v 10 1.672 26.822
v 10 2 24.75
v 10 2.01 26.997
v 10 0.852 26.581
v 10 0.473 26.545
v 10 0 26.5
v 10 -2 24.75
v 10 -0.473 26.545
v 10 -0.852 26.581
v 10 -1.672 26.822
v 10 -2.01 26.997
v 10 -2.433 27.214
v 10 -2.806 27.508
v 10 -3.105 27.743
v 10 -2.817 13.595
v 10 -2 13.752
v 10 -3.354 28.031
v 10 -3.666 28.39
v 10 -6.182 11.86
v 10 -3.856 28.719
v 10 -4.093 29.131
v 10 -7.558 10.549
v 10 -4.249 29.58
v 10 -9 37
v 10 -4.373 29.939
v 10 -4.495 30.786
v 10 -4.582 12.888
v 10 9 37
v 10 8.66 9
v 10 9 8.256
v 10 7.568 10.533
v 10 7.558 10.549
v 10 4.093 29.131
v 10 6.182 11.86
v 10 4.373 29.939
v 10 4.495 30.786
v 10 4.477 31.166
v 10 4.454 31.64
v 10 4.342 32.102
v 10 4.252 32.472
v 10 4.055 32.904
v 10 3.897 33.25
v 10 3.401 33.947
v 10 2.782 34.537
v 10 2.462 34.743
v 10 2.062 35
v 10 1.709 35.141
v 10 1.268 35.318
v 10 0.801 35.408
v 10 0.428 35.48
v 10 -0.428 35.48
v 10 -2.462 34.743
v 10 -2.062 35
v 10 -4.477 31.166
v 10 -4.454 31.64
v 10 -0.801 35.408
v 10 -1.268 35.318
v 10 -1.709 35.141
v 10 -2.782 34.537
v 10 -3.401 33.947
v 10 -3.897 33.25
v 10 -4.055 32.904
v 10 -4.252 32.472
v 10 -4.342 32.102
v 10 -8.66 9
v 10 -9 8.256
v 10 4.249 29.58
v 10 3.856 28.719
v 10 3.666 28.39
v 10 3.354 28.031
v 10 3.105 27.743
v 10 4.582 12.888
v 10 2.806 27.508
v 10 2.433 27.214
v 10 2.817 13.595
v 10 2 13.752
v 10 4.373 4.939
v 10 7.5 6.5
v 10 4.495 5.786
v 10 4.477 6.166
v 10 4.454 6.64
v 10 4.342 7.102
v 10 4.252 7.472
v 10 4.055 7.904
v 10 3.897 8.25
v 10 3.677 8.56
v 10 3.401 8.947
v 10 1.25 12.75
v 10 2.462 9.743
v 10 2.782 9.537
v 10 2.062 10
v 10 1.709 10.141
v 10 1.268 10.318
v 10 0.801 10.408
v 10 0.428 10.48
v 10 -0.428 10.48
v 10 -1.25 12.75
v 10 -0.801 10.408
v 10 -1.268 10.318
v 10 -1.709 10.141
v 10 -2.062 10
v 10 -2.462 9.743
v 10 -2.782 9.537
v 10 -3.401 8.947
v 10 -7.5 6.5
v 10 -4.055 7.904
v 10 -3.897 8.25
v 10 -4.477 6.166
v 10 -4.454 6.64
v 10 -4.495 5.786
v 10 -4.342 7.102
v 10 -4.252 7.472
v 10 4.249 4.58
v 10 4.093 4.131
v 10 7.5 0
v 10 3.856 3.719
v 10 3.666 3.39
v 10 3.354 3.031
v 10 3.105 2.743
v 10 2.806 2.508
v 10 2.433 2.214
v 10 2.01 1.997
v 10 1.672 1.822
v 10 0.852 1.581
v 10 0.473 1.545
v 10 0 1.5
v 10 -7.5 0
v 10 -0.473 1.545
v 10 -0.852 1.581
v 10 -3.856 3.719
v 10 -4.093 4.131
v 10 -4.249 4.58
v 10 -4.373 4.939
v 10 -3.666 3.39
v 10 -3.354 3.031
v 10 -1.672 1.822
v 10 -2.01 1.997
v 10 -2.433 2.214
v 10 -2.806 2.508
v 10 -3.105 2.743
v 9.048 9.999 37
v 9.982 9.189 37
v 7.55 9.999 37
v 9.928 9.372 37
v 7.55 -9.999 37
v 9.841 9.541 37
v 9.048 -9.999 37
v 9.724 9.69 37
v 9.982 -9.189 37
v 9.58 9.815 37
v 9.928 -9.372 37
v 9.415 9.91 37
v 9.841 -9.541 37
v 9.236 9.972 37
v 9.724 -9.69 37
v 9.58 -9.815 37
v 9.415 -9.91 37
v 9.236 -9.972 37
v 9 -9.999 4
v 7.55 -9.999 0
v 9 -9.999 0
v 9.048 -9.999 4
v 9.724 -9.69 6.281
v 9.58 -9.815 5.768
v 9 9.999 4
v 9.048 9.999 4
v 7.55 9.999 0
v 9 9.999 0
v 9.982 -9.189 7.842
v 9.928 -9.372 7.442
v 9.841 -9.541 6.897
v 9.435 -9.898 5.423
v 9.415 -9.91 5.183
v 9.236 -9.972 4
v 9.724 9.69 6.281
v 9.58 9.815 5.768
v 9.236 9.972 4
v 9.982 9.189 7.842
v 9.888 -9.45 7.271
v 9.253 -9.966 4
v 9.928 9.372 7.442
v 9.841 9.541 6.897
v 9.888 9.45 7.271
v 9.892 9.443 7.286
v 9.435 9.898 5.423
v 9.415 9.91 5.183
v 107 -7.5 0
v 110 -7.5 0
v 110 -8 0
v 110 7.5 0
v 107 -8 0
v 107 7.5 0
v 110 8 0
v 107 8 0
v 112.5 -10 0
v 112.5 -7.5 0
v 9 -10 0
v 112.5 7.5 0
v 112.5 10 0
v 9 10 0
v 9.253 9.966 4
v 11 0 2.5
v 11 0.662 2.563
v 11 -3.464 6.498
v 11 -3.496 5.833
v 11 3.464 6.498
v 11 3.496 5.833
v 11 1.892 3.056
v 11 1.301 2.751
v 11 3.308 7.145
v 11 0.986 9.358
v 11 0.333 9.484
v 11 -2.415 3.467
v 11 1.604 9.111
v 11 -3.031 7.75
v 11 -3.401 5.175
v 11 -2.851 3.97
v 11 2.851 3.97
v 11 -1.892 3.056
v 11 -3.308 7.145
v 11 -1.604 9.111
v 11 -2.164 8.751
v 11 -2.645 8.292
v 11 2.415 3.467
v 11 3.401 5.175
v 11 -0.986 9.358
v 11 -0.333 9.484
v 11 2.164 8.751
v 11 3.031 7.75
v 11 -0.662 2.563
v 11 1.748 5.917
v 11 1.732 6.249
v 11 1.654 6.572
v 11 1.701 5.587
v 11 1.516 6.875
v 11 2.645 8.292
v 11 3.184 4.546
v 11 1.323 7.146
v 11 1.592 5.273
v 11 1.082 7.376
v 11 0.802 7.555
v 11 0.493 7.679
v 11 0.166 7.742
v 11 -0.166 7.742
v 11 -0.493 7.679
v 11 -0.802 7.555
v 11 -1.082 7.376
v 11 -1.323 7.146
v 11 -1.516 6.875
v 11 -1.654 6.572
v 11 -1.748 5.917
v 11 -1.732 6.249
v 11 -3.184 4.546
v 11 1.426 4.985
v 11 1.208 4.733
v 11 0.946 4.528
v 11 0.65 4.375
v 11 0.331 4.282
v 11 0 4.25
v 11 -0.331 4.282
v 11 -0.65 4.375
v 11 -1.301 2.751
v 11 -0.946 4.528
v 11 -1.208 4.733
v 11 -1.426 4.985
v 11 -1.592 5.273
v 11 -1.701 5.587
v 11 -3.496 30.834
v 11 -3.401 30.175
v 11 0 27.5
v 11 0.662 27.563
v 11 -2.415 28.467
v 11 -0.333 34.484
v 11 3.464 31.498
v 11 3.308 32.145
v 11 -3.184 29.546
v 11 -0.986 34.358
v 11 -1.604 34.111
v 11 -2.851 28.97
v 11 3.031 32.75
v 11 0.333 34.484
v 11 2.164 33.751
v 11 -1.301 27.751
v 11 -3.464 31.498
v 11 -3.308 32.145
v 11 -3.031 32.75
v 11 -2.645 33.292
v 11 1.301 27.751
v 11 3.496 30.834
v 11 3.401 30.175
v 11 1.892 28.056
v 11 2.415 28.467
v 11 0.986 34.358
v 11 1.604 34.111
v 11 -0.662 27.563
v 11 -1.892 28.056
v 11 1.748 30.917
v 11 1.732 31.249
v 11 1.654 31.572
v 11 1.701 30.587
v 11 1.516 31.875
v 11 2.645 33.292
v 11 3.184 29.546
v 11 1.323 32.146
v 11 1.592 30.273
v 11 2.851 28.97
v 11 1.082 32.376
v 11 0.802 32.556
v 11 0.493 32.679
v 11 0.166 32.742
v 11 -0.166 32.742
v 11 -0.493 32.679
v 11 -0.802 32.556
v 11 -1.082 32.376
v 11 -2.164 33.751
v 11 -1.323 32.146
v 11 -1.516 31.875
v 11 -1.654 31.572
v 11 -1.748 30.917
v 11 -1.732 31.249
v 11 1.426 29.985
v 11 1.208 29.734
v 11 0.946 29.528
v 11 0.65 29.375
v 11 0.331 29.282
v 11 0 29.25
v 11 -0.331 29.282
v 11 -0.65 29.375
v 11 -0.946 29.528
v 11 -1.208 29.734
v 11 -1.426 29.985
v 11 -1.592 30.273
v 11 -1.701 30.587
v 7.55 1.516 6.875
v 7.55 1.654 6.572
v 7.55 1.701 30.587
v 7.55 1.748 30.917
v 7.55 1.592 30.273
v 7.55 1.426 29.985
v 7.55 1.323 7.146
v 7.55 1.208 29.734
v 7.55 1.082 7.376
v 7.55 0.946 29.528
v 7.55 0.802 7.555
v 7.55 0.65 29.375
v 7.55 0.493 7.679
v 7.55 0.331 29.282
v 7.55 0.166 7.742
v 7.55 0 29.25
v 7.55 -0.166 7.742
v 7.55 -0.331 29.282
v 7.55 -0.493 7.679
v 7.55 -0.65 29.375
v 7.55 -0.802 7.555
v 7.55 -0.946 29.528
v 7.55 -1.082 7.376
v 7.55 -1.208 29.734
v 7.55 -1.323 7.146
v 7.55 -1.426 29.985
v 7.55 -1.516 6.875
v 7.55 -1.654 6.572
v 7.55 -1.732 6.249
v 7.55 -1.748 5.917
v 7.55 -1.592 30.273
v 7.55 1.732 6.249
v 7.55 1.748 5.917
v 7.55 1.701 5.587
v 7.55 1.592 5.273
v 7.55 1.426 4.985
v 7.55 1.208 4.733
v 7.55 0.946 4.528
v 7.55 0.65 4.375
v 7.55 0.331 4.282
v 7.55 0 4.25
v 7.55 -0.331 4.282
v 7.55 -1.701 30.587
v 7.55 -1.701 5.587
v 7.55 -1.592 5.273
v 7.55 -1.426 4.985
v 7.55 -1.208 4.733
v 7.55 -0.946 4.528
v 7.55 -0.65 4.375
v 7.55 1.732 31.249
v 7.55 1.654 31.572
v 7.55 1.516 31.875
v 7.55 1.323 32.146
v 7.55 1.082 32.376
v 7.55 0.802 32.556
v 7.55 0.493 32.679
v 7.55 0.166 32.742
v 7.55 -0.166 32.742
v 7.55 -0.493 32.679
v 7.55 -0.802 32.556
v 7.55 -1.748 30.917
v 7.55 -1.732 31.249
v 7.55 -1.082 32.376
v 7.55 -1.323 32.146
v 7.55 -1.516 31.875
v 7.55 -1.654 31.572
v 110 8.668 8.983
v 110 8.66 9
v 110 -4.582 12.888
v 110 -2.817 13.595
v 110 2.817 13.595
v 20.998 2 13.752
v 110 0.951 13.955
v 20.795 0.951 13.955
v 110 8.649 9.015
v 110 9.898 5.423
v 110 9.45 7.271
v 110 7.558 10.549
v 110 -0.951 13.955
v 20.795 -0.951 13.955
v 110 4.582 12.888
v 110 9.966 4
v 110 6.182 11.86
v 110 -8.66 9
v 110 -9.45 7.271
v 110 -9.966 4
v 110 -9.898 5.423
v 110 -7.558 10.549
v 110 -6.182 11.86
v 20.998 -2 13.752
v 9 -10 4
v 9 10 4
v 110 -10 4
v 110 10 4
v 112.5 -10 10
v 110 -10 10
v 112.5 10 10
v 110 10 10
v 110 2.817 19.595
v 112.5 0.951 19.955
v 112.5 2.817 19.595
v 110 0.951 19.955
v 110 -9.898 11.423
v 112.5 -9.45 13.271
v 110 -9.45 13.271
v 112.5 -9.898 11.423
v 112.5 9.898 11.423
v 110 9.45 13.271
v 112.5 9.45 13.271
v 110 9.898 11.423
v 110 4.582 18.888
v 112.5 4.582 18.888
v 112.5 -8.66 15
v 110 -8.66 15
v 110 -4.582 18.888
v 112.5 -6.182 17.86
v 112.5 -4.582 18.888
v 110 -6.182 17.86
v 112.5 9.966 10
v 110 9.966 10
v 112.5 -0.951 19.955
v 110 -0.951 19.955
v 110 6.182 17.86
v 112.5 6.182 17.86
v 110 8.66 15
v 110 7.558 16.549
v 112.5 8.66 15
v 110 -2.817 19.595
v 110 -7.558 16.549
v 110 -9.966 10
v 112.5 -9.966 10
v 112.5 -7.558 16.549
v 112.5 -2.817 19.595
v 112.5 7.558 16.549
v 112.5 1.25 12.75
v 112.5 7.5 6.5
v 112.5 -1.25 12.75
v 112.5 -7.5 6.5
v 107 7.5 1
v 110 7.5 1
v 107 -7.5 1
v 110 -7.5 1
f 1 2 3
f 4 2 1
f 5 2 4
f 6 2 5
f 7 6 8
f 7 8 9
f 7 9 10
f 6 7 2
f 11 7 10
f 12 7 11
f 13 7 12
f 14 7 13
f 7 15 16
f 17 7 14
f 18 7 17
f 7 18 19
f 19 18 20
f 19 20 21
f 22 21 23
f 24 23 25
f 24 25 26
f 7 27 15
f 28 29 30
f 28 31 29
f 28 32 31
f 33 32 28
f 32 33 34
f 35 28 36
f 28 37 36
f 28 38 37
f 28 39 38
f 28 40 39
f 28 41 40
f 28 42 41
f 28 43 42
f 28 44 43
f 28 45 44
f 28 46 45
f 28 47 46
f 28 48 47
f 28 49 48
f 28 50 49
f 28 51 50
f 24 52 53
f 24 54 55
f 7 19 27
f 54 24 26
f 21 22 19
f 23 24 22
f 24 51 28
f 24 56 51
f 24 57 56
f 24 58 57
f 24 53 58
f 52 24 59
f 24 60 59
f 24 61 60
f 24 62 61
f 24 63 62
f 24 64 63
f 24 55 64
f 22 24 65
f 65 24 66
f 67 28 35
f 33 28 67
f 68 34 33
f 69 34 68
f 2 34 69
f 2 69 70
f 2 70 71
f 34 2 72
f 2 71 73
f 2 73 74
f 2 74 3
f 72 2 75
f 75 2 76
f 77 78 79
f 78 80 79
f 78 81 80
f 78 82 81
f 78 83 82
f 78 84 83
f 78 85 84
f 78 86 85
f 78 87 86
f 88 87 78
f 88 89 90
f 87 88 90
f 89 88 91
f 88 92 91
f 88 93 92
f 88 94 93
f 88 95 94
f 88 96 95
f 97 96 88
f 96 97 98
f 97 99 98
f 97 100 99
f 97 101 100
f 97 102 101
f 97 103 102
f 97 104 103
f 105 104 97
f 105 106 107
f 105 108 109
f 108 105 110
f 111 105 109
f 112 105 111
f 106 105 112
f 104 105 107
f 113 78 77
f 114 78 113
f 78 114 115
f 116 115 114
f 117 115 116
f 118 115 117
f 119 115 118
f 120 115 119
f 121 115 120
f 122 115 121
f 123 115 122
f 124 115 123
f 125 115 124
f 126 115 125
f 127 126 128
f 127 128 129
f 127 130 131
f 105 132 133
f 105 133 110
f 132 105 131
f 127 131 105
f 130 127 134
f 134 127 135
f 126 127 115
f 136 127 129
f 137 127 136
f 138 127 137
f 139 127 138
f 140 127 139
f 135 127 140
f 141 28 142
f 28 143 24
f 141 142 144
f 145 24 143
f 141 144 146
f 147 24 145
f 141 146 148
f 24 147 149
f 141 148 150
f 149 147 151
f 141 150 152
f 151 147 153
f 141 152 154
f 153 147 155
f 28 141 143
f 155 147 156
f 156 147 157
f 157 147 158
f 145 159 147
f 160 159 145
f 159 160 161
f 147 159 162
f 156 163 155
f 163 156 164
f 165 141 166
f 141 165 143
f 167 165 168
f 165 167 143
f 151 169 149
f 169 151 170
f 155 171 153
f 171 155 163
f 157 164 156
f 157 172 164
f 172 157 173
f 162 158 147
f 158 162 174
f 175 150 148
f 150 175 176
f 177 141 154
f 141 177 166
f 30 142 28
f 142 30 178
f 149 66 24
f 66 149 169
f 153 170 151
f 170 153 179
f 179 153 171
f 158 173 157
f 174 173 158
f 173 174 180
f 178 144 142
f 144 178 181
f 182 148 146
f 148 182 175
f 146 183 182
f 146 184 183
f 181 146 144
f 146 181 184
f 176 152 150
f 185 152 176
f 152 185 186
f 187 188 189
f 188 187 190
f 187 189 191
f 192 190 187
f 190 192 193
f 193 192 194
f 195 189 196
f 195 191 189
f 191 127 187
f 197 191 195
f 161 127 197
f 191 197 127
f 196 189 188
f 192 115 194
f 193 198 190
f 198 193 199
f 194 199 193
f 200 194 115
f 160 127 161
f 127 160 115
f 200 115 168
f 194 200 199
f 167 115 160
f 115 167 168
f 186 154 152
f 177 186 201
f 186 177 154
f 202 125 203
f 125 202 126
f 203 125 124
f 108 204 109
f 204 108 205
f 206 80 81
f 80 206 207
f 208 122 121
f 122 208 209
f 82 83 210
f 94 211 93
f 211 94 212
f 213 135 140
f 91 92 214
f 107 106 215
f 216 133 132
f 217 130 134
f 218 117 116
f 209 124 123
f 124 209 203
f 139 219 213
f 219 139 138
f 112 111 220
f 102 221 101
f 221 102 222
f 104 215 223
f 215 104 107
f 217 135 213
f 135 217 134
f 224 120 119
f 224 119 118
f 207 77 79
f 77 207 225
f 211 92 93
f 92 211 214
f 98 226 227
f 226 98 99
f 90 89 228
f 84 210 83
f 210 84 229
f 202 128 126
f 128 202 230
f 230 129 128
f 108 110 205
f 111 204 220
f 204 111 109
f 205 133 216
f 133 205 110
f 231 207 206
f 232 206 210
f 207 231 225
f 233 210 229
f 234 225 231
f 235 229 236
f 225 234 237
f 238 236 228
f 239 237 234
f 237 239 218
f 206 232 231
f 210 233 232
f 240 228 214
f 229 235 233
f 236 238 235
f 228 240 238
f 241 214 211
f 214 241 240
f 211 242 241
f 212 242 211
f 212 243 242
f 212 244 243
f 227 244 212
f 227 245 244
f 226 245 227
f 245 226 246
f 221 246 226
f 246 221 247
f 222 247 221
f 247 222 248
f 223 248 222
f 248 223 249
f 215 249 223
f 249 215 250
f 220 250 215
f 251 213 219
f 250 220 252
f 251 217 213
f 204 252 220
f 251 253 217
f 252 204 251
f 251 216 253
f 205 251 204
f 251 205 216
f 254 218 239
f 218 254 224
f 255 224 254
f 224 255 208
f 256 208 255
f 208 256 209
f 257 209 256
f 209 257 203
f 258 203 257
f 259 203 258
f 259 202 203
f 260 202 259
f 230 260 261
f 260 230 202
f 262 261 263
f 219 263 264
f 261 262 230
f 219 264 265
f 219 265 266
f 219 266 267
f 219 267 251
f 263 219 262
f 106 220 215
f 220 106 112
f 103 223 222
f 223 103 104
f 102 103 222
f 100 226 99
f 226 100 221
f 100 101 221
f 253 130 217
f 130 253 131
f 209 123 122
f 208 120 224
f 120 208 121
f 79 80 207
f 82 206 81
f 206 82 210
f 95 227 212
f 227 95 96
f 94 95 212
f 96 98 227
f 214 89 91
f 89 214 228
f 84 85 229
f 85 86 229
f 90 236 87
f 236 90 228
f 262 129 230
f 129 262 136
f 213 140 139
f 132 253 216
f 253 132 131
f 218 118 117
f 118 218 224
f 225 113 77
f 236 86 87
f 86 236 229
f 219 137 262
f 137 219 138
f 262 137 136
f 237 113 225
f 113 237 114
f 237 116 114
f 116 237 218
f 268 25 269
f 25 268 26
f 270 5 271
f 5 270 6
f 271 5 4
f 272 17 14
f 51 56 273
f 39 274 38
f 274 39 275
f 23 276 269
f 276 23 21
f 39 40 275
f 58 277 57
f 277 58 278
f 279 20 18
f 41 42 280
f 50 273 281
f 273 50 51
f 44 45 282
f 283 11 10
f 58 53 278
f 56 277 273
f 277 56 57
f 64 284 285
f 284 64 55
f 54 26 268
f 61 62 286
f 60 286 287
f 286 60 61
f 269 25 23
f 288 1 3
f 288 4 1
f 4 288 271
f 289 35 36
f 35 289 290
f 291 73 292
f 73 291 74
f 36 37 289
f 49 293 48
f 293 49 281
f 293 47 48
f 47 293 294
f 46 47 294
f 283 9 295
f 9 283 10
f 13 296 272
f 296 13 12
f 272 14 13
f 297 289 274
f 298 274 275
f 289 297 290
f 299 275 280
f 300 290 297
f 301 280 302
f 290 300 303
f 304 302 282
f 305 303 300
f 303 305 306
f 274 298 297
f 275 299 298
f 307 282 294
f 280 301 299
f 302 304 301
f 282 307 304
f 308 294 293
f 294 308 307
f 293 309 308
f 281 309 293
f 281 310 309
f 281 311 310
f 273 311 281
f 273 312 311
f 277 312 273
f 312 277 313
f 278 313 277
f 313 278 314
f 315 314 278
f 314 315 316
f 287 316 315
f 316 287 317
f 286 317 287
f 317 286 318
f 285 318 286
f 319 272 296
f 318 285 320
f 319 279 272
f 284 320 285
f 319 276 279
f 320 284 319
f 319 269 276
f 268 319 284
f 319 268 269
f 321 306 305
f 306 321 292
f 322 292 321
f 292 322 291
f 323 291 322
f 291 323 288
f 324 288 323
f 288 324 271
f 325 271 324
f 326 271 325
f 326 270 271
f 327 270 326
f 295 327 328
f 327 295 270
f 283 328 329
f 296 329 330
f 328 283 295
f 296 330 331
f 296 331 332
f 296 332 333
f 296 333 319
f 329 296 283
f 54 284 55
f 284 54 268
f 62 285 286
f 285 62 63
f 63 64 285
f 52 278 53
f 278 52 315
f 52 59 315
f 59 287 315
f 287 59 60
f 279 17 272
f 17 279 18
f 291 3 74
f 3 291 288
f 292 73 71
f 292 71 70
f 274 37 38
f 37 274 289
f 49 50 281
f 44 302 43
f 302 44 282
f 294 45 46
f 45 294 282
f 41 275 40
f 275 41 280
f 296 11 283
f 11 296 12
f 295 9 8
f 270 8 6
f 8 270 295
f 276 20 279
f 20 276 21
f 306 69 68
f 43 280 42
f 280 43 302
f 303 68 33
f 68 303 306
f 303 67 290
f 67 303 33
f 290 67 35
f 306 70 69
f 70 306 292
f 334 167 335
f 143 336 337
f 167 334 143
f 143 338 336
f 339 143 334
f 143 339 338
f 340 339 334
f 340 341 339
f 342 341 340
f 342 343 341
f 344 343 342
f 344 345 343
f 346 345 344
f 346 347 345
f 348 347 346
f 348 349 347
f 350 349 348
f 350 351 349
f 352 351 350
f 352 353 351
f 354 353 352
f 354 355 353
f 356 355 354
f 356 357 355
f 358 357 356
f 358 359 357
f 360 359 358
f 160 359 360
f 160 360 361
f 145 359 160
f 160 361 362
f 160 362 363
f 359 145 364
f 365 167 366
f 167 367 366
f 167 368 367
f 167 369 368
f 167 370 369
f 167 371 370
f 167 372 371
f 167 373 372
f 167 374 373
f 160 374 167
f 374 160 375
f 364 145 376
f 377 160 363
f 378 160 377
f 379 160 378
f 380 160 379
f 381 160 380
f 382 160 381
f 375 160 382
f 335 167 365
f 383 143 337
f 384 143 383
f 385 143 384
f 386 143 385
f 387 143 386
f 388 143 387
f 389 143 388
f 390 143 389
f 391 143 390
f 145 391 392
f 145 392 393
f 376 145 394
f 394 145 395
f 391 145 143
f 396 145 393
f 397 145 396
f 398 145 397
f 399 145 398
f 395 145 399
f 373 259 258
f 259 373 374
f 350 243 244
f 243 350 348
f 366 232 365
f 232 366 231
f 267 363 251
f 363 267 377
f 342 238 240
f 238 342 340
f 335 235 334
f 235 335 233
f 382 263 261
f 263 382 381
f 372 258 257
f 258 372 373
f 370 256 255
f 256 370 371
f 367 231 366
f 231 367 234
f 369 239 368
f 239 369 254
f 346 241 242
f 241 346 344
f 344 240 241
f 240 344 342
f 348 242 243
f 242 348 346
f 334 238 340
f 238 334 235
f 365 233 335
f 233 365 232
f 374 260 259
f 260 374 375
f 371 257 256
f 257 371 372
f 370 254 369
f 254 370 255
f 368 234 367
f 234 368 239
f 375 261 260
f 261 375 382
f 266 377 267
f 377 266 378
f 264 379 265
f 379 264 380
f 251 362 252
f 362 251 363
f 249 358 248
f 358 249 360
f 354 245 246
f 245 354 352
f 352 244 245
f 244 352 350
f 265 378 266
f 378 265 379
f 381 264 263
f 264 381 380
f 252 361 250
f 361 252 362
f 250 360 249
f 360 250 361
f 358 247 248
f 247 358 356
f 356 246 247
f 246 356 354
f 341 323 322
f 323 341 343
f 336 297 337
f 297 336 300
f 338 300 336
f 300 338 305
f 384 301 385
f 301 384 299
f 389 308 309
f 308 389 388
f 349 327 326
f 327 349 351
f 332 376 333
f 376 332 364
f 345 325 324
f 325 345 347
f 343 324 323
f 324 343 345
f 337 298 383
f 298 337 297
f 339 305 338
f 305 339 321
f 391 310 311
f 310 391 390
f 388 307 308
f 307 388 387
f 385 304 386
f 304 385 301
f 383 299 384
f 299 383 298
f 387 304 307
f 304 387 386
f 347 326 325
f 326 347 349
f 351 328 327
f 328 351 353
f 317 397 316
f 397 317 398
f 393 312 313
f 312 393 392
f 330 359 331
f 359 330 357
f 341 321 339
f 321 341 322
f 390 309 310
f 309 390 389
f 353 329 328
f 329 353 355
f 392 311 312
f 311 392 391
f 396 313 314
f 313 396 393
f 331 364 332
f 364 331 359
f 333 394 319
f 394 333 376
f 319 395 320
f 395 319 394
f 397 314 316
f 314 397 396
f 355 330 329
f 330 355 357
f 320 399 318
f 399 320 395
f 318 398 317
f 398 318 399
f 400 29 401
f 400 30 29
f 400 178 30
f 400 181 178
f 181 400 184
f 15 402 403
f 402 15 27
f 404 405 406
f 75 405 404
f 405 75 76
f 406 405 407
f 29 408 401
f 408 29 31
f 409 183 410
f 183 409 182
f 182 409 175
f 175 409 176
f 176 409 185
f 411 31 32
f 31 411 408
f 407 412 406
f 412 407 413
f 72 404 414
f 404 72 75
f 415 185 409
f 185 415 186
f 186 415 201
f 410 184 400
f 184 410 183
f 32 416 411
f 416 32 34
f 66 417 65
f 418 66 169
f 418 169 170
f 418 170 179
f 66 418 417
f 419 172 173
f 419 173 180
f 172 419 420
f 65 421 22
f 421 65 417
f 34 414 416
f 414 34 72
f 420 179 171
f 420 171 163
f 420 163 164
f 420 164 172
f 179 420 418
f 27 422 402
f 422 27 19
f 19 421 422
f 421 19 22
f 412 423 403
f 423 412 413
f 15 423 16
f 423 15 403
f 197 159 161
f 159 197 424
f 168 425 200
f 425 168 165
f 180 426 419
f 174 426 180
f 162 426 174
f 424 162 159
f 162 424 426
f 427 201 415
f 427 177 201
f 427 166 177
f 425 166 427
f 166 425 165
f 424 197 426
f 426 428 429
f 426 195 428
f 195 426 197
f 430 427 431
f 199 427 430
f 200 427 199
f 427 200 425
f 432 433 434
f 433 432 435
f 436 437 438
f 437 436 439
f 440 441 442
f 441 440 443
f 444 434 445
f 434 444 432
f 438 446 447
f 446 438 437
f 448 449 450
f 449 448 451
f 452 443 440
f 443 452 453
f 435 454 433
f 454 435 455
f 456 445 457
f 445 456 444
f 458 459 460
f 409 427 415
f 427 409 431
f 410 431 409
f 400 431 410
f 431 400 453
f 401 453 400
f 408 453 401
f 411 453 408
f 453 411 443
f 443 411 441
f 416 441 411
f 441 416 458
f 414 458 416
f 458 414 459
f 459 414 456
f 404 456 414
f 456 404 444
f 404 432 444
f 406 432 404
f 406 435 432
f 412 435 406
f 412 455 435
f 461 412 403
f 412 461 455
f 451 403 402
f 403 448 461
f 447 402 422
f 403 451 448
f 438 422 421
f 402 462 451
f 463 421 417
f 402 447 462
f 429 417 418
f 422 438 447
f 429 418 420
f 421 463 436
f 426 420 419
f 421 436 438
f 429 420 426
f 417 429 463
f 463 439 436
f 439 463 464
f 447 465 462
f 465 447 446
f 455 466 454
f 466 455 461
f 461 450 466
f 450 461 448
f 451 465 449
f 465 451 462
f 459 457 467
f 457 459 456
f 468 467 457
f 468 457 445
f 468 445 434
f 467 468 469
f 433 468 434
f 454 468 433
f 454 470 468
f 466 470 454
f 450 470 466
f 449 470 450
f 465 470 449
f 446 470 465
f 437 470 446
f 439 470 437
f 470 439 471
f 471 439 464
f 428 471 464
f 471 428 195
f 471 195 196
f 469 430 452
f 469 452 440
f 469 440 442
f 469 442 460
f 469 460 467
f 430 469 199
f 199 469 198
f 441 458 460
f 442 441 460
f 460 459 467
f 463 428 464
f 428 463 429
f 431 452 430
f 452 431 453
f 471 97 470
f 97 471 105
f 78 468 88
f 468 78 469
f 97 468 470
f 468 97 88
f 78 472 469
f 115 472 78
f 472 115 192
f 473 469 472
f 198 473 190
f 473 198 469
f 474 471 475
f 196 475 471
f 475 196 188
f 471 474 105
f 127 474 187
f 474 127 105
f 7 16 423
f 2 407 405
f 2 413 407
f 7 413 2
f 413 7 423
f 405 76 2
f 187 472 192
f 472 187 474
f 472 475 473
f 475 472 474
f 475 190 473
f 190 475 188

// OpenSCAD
// Stephen Stair 2014 (sgstair@akkit.org)
// Openbeam Kossel Spool Holder
// Ground up recreation of the thing here: http://www.thingiverse.com/thing:209294


beamsize = 15;
beamgapwidth = 3;
beamgapdepth=3;

beam_grip = 0.5;

interface_height = 37;
interface_overlap = beamsize*.85;

interface_smooth = 1;

wall = 2.5;
screw_wall = 3.5;
screw_size = 3.5;
screw_reinforce_radius = 7/2;


screw_low = 6;
screw_mid = interface_height/2;
screw_high = interface_height-6;

holder_length = 100;
holder_radius = (beamsize+wall*2)/2;
holder_height = 4;
holder_retain = 6;

support_size = 12;
support_wall = 4;

$fs = 0.1;
$fa = 11;


module beam(length)
{
	difference() {
		translate([-beamsize/2,-beamsize/2,0])
			cube([beamsize,beamsize,length]);

		translate([-beamsize/2,0,0])
			cube([beamgapdepth*2,beamgapwidth,length*3],center=true);
		translate([beamsize/2,0,0])
			cube([beamgapdepth*2,beamgapwidth,length*3],center=true);

		translate([0,-beamsize/2,0])
			cube([beamgapwidth,beamgapdepth*2,length*3],center=true);
		translate([0,beamsize/2,0])
			cube([beamgapwidth,beamgapdepth*2,length*3],center=true);
   }
}


module screw_reinforce()
{
	rotate([0,90,0])
		cylinder(r1=screw_reinforce_radius+screw_wall, r2 = screw_reinforce_radius,h=screw_wall);
  
}

module beam_interface()
{
	difference() {
		union()
		{
			// core wall

			// Round corners of interface base surface.
			minkowski()
      	{
				translate([0,0,interface_height/2])
					cube([beamsize+wall*2-interface_smooth*2, beamsize+wall*2-interface_smooth*2, interface_height-1],center=true);

				cylinder(r = interface_smooth, h=1, center=true);
			}

			// Add reinforcement around screw holes
			translate([beamsize/2,0,screw_low])
				screw_reinforce();			

			translate([beamsize/2,0,screw_high])
				screw_reinforce();

			translate([0,beamsize/2,screw_mid])
				rotate([0,0,90])
					screw_reinforce();

			translate([0,-beamsize/2,screw_mid])
				rotate([0,0,-90])
					screw_reinforce();
		}


		cube([beamsize-beam_grip*2,beamsize-beam_grip*2,interface_height*3],center=true);

		translate([-beamsize*1.5-interface_overlap+12.8,0,0])
			cube([beamsize*4,beamsize*4,interface_height*3],center=true);

		translate([0,0,-5]) beam(10+interface_height);

		// Cut off anything above the top
		translate([-beamsize*2,-beamsize*2,interface_height])
			cube([beamsize*4,beamsize*4,beamsize*4]);

		// Cut off anything below the bottom
		translate([-beamsize*2,-beamsize*2,-beamsize*4])
			cube([beamsize*4,beamsize*4,beamsize*4]);



		// screw holes

		translate([beamsize/2-2,0,screw_low])
			rotate([0,90,0])
				#cylinder(r=screw_size/2,h=screw_wall+4);

		translate([beamsize/2-2,0,screw_high])
			rotate([0,90,0])
				#cylinder(r=screw_size/2,h=screw_wall+4);

		translate([0,beamsize/2-2,screw_mid])
			rotate([-90,0,0])
				#cylinder(r=screw_size/2,h=screw_wall+4);

		translate([0,-beamsize/2+2,screw_mid])
			rotate([90,0,0])
				#cylinder(r=screw_size/2,h=screw_wall+4);
	}
}

module holder()
{
   // Calculate size of shapes to be removed below the holder
	remove_base_height = holder_height + holder_radius - (holder_radius-wall);
   
	remove_start = beamsize/2+wall-2;
	remove_length = holder_length+wall*4;
	remove_base_width = holder_radius*2-wall*2;
   remove_angle_size = (holder_radius-wall)*sqrt(2);

	difference()
	{
		union()
		{
			translate([beamsize/2+wall-1,0,holder_height])
				rotate([0,90,0])
					cylinder(r=holder_radius,h=holder_length+2);

			translate([beamsize/2+wall-1, -holder_radius, 0])
				cube([holder_length+2, holder_radius*2, holder_height]);
	
			translate([beamsize/2+wall+holder_length,0,holder_height + holder_retain])
				rotate([0,90,0])
					cylinder(r=holder_radius,h=wall);
	
			translate([beamsize/2+wall+holder_length, -holder_radius, 0])
				cube([wall, holder_radius*2, holder_height+holder_retain]);
		}

		translate([0,-holder_radius*2,-holder_radius*2])
			cube([remove_length*2,holder_radius*4,holder_radius*2]);
		translate([remove_start,-remove_base_width/2, -holder_radius*2])
			cube([remove_length,remove_base_width, remove_base_height + holder_radius*2]);

		difference()
		{
			translate([0,0,remove_base_height])
				rotate([45,0,0])
					translate([remove_start,-remove_angle_size/2,-remove_angle_size/2])
				      cube([remove_length, remove_angle_size,remove_angle_size]);

			translate([0,-holder_radius*2,remove_base_height + holder_radius - wall*1.5])
				cube([remove_length*2, holder_radius*4, holder_radius]);
		}

	}
}

module support()
{
	base_size = support_size*2/sqrt(2);

	translate([beamsize/2+wall,0,holder_height + holder_radius - wall/2])
	difference()
	{
		rotate([90,45,0])
   		cube([base_size,base_size,support_wall],center=true);

		translate([-base_size*2-wall/2,-base_size,-base_size])
			cube([base_size*2,base_size*2,base_size*2]);

		translate([-base_size,-base_size,-base_size*2])
			cube([base_size*2,base_size*2,base_size*2]);

	}
}


union()
{
	beam_interface();
	holder();
	support();
	translate([107,-8,0]) cube([3,16,1]);
}
